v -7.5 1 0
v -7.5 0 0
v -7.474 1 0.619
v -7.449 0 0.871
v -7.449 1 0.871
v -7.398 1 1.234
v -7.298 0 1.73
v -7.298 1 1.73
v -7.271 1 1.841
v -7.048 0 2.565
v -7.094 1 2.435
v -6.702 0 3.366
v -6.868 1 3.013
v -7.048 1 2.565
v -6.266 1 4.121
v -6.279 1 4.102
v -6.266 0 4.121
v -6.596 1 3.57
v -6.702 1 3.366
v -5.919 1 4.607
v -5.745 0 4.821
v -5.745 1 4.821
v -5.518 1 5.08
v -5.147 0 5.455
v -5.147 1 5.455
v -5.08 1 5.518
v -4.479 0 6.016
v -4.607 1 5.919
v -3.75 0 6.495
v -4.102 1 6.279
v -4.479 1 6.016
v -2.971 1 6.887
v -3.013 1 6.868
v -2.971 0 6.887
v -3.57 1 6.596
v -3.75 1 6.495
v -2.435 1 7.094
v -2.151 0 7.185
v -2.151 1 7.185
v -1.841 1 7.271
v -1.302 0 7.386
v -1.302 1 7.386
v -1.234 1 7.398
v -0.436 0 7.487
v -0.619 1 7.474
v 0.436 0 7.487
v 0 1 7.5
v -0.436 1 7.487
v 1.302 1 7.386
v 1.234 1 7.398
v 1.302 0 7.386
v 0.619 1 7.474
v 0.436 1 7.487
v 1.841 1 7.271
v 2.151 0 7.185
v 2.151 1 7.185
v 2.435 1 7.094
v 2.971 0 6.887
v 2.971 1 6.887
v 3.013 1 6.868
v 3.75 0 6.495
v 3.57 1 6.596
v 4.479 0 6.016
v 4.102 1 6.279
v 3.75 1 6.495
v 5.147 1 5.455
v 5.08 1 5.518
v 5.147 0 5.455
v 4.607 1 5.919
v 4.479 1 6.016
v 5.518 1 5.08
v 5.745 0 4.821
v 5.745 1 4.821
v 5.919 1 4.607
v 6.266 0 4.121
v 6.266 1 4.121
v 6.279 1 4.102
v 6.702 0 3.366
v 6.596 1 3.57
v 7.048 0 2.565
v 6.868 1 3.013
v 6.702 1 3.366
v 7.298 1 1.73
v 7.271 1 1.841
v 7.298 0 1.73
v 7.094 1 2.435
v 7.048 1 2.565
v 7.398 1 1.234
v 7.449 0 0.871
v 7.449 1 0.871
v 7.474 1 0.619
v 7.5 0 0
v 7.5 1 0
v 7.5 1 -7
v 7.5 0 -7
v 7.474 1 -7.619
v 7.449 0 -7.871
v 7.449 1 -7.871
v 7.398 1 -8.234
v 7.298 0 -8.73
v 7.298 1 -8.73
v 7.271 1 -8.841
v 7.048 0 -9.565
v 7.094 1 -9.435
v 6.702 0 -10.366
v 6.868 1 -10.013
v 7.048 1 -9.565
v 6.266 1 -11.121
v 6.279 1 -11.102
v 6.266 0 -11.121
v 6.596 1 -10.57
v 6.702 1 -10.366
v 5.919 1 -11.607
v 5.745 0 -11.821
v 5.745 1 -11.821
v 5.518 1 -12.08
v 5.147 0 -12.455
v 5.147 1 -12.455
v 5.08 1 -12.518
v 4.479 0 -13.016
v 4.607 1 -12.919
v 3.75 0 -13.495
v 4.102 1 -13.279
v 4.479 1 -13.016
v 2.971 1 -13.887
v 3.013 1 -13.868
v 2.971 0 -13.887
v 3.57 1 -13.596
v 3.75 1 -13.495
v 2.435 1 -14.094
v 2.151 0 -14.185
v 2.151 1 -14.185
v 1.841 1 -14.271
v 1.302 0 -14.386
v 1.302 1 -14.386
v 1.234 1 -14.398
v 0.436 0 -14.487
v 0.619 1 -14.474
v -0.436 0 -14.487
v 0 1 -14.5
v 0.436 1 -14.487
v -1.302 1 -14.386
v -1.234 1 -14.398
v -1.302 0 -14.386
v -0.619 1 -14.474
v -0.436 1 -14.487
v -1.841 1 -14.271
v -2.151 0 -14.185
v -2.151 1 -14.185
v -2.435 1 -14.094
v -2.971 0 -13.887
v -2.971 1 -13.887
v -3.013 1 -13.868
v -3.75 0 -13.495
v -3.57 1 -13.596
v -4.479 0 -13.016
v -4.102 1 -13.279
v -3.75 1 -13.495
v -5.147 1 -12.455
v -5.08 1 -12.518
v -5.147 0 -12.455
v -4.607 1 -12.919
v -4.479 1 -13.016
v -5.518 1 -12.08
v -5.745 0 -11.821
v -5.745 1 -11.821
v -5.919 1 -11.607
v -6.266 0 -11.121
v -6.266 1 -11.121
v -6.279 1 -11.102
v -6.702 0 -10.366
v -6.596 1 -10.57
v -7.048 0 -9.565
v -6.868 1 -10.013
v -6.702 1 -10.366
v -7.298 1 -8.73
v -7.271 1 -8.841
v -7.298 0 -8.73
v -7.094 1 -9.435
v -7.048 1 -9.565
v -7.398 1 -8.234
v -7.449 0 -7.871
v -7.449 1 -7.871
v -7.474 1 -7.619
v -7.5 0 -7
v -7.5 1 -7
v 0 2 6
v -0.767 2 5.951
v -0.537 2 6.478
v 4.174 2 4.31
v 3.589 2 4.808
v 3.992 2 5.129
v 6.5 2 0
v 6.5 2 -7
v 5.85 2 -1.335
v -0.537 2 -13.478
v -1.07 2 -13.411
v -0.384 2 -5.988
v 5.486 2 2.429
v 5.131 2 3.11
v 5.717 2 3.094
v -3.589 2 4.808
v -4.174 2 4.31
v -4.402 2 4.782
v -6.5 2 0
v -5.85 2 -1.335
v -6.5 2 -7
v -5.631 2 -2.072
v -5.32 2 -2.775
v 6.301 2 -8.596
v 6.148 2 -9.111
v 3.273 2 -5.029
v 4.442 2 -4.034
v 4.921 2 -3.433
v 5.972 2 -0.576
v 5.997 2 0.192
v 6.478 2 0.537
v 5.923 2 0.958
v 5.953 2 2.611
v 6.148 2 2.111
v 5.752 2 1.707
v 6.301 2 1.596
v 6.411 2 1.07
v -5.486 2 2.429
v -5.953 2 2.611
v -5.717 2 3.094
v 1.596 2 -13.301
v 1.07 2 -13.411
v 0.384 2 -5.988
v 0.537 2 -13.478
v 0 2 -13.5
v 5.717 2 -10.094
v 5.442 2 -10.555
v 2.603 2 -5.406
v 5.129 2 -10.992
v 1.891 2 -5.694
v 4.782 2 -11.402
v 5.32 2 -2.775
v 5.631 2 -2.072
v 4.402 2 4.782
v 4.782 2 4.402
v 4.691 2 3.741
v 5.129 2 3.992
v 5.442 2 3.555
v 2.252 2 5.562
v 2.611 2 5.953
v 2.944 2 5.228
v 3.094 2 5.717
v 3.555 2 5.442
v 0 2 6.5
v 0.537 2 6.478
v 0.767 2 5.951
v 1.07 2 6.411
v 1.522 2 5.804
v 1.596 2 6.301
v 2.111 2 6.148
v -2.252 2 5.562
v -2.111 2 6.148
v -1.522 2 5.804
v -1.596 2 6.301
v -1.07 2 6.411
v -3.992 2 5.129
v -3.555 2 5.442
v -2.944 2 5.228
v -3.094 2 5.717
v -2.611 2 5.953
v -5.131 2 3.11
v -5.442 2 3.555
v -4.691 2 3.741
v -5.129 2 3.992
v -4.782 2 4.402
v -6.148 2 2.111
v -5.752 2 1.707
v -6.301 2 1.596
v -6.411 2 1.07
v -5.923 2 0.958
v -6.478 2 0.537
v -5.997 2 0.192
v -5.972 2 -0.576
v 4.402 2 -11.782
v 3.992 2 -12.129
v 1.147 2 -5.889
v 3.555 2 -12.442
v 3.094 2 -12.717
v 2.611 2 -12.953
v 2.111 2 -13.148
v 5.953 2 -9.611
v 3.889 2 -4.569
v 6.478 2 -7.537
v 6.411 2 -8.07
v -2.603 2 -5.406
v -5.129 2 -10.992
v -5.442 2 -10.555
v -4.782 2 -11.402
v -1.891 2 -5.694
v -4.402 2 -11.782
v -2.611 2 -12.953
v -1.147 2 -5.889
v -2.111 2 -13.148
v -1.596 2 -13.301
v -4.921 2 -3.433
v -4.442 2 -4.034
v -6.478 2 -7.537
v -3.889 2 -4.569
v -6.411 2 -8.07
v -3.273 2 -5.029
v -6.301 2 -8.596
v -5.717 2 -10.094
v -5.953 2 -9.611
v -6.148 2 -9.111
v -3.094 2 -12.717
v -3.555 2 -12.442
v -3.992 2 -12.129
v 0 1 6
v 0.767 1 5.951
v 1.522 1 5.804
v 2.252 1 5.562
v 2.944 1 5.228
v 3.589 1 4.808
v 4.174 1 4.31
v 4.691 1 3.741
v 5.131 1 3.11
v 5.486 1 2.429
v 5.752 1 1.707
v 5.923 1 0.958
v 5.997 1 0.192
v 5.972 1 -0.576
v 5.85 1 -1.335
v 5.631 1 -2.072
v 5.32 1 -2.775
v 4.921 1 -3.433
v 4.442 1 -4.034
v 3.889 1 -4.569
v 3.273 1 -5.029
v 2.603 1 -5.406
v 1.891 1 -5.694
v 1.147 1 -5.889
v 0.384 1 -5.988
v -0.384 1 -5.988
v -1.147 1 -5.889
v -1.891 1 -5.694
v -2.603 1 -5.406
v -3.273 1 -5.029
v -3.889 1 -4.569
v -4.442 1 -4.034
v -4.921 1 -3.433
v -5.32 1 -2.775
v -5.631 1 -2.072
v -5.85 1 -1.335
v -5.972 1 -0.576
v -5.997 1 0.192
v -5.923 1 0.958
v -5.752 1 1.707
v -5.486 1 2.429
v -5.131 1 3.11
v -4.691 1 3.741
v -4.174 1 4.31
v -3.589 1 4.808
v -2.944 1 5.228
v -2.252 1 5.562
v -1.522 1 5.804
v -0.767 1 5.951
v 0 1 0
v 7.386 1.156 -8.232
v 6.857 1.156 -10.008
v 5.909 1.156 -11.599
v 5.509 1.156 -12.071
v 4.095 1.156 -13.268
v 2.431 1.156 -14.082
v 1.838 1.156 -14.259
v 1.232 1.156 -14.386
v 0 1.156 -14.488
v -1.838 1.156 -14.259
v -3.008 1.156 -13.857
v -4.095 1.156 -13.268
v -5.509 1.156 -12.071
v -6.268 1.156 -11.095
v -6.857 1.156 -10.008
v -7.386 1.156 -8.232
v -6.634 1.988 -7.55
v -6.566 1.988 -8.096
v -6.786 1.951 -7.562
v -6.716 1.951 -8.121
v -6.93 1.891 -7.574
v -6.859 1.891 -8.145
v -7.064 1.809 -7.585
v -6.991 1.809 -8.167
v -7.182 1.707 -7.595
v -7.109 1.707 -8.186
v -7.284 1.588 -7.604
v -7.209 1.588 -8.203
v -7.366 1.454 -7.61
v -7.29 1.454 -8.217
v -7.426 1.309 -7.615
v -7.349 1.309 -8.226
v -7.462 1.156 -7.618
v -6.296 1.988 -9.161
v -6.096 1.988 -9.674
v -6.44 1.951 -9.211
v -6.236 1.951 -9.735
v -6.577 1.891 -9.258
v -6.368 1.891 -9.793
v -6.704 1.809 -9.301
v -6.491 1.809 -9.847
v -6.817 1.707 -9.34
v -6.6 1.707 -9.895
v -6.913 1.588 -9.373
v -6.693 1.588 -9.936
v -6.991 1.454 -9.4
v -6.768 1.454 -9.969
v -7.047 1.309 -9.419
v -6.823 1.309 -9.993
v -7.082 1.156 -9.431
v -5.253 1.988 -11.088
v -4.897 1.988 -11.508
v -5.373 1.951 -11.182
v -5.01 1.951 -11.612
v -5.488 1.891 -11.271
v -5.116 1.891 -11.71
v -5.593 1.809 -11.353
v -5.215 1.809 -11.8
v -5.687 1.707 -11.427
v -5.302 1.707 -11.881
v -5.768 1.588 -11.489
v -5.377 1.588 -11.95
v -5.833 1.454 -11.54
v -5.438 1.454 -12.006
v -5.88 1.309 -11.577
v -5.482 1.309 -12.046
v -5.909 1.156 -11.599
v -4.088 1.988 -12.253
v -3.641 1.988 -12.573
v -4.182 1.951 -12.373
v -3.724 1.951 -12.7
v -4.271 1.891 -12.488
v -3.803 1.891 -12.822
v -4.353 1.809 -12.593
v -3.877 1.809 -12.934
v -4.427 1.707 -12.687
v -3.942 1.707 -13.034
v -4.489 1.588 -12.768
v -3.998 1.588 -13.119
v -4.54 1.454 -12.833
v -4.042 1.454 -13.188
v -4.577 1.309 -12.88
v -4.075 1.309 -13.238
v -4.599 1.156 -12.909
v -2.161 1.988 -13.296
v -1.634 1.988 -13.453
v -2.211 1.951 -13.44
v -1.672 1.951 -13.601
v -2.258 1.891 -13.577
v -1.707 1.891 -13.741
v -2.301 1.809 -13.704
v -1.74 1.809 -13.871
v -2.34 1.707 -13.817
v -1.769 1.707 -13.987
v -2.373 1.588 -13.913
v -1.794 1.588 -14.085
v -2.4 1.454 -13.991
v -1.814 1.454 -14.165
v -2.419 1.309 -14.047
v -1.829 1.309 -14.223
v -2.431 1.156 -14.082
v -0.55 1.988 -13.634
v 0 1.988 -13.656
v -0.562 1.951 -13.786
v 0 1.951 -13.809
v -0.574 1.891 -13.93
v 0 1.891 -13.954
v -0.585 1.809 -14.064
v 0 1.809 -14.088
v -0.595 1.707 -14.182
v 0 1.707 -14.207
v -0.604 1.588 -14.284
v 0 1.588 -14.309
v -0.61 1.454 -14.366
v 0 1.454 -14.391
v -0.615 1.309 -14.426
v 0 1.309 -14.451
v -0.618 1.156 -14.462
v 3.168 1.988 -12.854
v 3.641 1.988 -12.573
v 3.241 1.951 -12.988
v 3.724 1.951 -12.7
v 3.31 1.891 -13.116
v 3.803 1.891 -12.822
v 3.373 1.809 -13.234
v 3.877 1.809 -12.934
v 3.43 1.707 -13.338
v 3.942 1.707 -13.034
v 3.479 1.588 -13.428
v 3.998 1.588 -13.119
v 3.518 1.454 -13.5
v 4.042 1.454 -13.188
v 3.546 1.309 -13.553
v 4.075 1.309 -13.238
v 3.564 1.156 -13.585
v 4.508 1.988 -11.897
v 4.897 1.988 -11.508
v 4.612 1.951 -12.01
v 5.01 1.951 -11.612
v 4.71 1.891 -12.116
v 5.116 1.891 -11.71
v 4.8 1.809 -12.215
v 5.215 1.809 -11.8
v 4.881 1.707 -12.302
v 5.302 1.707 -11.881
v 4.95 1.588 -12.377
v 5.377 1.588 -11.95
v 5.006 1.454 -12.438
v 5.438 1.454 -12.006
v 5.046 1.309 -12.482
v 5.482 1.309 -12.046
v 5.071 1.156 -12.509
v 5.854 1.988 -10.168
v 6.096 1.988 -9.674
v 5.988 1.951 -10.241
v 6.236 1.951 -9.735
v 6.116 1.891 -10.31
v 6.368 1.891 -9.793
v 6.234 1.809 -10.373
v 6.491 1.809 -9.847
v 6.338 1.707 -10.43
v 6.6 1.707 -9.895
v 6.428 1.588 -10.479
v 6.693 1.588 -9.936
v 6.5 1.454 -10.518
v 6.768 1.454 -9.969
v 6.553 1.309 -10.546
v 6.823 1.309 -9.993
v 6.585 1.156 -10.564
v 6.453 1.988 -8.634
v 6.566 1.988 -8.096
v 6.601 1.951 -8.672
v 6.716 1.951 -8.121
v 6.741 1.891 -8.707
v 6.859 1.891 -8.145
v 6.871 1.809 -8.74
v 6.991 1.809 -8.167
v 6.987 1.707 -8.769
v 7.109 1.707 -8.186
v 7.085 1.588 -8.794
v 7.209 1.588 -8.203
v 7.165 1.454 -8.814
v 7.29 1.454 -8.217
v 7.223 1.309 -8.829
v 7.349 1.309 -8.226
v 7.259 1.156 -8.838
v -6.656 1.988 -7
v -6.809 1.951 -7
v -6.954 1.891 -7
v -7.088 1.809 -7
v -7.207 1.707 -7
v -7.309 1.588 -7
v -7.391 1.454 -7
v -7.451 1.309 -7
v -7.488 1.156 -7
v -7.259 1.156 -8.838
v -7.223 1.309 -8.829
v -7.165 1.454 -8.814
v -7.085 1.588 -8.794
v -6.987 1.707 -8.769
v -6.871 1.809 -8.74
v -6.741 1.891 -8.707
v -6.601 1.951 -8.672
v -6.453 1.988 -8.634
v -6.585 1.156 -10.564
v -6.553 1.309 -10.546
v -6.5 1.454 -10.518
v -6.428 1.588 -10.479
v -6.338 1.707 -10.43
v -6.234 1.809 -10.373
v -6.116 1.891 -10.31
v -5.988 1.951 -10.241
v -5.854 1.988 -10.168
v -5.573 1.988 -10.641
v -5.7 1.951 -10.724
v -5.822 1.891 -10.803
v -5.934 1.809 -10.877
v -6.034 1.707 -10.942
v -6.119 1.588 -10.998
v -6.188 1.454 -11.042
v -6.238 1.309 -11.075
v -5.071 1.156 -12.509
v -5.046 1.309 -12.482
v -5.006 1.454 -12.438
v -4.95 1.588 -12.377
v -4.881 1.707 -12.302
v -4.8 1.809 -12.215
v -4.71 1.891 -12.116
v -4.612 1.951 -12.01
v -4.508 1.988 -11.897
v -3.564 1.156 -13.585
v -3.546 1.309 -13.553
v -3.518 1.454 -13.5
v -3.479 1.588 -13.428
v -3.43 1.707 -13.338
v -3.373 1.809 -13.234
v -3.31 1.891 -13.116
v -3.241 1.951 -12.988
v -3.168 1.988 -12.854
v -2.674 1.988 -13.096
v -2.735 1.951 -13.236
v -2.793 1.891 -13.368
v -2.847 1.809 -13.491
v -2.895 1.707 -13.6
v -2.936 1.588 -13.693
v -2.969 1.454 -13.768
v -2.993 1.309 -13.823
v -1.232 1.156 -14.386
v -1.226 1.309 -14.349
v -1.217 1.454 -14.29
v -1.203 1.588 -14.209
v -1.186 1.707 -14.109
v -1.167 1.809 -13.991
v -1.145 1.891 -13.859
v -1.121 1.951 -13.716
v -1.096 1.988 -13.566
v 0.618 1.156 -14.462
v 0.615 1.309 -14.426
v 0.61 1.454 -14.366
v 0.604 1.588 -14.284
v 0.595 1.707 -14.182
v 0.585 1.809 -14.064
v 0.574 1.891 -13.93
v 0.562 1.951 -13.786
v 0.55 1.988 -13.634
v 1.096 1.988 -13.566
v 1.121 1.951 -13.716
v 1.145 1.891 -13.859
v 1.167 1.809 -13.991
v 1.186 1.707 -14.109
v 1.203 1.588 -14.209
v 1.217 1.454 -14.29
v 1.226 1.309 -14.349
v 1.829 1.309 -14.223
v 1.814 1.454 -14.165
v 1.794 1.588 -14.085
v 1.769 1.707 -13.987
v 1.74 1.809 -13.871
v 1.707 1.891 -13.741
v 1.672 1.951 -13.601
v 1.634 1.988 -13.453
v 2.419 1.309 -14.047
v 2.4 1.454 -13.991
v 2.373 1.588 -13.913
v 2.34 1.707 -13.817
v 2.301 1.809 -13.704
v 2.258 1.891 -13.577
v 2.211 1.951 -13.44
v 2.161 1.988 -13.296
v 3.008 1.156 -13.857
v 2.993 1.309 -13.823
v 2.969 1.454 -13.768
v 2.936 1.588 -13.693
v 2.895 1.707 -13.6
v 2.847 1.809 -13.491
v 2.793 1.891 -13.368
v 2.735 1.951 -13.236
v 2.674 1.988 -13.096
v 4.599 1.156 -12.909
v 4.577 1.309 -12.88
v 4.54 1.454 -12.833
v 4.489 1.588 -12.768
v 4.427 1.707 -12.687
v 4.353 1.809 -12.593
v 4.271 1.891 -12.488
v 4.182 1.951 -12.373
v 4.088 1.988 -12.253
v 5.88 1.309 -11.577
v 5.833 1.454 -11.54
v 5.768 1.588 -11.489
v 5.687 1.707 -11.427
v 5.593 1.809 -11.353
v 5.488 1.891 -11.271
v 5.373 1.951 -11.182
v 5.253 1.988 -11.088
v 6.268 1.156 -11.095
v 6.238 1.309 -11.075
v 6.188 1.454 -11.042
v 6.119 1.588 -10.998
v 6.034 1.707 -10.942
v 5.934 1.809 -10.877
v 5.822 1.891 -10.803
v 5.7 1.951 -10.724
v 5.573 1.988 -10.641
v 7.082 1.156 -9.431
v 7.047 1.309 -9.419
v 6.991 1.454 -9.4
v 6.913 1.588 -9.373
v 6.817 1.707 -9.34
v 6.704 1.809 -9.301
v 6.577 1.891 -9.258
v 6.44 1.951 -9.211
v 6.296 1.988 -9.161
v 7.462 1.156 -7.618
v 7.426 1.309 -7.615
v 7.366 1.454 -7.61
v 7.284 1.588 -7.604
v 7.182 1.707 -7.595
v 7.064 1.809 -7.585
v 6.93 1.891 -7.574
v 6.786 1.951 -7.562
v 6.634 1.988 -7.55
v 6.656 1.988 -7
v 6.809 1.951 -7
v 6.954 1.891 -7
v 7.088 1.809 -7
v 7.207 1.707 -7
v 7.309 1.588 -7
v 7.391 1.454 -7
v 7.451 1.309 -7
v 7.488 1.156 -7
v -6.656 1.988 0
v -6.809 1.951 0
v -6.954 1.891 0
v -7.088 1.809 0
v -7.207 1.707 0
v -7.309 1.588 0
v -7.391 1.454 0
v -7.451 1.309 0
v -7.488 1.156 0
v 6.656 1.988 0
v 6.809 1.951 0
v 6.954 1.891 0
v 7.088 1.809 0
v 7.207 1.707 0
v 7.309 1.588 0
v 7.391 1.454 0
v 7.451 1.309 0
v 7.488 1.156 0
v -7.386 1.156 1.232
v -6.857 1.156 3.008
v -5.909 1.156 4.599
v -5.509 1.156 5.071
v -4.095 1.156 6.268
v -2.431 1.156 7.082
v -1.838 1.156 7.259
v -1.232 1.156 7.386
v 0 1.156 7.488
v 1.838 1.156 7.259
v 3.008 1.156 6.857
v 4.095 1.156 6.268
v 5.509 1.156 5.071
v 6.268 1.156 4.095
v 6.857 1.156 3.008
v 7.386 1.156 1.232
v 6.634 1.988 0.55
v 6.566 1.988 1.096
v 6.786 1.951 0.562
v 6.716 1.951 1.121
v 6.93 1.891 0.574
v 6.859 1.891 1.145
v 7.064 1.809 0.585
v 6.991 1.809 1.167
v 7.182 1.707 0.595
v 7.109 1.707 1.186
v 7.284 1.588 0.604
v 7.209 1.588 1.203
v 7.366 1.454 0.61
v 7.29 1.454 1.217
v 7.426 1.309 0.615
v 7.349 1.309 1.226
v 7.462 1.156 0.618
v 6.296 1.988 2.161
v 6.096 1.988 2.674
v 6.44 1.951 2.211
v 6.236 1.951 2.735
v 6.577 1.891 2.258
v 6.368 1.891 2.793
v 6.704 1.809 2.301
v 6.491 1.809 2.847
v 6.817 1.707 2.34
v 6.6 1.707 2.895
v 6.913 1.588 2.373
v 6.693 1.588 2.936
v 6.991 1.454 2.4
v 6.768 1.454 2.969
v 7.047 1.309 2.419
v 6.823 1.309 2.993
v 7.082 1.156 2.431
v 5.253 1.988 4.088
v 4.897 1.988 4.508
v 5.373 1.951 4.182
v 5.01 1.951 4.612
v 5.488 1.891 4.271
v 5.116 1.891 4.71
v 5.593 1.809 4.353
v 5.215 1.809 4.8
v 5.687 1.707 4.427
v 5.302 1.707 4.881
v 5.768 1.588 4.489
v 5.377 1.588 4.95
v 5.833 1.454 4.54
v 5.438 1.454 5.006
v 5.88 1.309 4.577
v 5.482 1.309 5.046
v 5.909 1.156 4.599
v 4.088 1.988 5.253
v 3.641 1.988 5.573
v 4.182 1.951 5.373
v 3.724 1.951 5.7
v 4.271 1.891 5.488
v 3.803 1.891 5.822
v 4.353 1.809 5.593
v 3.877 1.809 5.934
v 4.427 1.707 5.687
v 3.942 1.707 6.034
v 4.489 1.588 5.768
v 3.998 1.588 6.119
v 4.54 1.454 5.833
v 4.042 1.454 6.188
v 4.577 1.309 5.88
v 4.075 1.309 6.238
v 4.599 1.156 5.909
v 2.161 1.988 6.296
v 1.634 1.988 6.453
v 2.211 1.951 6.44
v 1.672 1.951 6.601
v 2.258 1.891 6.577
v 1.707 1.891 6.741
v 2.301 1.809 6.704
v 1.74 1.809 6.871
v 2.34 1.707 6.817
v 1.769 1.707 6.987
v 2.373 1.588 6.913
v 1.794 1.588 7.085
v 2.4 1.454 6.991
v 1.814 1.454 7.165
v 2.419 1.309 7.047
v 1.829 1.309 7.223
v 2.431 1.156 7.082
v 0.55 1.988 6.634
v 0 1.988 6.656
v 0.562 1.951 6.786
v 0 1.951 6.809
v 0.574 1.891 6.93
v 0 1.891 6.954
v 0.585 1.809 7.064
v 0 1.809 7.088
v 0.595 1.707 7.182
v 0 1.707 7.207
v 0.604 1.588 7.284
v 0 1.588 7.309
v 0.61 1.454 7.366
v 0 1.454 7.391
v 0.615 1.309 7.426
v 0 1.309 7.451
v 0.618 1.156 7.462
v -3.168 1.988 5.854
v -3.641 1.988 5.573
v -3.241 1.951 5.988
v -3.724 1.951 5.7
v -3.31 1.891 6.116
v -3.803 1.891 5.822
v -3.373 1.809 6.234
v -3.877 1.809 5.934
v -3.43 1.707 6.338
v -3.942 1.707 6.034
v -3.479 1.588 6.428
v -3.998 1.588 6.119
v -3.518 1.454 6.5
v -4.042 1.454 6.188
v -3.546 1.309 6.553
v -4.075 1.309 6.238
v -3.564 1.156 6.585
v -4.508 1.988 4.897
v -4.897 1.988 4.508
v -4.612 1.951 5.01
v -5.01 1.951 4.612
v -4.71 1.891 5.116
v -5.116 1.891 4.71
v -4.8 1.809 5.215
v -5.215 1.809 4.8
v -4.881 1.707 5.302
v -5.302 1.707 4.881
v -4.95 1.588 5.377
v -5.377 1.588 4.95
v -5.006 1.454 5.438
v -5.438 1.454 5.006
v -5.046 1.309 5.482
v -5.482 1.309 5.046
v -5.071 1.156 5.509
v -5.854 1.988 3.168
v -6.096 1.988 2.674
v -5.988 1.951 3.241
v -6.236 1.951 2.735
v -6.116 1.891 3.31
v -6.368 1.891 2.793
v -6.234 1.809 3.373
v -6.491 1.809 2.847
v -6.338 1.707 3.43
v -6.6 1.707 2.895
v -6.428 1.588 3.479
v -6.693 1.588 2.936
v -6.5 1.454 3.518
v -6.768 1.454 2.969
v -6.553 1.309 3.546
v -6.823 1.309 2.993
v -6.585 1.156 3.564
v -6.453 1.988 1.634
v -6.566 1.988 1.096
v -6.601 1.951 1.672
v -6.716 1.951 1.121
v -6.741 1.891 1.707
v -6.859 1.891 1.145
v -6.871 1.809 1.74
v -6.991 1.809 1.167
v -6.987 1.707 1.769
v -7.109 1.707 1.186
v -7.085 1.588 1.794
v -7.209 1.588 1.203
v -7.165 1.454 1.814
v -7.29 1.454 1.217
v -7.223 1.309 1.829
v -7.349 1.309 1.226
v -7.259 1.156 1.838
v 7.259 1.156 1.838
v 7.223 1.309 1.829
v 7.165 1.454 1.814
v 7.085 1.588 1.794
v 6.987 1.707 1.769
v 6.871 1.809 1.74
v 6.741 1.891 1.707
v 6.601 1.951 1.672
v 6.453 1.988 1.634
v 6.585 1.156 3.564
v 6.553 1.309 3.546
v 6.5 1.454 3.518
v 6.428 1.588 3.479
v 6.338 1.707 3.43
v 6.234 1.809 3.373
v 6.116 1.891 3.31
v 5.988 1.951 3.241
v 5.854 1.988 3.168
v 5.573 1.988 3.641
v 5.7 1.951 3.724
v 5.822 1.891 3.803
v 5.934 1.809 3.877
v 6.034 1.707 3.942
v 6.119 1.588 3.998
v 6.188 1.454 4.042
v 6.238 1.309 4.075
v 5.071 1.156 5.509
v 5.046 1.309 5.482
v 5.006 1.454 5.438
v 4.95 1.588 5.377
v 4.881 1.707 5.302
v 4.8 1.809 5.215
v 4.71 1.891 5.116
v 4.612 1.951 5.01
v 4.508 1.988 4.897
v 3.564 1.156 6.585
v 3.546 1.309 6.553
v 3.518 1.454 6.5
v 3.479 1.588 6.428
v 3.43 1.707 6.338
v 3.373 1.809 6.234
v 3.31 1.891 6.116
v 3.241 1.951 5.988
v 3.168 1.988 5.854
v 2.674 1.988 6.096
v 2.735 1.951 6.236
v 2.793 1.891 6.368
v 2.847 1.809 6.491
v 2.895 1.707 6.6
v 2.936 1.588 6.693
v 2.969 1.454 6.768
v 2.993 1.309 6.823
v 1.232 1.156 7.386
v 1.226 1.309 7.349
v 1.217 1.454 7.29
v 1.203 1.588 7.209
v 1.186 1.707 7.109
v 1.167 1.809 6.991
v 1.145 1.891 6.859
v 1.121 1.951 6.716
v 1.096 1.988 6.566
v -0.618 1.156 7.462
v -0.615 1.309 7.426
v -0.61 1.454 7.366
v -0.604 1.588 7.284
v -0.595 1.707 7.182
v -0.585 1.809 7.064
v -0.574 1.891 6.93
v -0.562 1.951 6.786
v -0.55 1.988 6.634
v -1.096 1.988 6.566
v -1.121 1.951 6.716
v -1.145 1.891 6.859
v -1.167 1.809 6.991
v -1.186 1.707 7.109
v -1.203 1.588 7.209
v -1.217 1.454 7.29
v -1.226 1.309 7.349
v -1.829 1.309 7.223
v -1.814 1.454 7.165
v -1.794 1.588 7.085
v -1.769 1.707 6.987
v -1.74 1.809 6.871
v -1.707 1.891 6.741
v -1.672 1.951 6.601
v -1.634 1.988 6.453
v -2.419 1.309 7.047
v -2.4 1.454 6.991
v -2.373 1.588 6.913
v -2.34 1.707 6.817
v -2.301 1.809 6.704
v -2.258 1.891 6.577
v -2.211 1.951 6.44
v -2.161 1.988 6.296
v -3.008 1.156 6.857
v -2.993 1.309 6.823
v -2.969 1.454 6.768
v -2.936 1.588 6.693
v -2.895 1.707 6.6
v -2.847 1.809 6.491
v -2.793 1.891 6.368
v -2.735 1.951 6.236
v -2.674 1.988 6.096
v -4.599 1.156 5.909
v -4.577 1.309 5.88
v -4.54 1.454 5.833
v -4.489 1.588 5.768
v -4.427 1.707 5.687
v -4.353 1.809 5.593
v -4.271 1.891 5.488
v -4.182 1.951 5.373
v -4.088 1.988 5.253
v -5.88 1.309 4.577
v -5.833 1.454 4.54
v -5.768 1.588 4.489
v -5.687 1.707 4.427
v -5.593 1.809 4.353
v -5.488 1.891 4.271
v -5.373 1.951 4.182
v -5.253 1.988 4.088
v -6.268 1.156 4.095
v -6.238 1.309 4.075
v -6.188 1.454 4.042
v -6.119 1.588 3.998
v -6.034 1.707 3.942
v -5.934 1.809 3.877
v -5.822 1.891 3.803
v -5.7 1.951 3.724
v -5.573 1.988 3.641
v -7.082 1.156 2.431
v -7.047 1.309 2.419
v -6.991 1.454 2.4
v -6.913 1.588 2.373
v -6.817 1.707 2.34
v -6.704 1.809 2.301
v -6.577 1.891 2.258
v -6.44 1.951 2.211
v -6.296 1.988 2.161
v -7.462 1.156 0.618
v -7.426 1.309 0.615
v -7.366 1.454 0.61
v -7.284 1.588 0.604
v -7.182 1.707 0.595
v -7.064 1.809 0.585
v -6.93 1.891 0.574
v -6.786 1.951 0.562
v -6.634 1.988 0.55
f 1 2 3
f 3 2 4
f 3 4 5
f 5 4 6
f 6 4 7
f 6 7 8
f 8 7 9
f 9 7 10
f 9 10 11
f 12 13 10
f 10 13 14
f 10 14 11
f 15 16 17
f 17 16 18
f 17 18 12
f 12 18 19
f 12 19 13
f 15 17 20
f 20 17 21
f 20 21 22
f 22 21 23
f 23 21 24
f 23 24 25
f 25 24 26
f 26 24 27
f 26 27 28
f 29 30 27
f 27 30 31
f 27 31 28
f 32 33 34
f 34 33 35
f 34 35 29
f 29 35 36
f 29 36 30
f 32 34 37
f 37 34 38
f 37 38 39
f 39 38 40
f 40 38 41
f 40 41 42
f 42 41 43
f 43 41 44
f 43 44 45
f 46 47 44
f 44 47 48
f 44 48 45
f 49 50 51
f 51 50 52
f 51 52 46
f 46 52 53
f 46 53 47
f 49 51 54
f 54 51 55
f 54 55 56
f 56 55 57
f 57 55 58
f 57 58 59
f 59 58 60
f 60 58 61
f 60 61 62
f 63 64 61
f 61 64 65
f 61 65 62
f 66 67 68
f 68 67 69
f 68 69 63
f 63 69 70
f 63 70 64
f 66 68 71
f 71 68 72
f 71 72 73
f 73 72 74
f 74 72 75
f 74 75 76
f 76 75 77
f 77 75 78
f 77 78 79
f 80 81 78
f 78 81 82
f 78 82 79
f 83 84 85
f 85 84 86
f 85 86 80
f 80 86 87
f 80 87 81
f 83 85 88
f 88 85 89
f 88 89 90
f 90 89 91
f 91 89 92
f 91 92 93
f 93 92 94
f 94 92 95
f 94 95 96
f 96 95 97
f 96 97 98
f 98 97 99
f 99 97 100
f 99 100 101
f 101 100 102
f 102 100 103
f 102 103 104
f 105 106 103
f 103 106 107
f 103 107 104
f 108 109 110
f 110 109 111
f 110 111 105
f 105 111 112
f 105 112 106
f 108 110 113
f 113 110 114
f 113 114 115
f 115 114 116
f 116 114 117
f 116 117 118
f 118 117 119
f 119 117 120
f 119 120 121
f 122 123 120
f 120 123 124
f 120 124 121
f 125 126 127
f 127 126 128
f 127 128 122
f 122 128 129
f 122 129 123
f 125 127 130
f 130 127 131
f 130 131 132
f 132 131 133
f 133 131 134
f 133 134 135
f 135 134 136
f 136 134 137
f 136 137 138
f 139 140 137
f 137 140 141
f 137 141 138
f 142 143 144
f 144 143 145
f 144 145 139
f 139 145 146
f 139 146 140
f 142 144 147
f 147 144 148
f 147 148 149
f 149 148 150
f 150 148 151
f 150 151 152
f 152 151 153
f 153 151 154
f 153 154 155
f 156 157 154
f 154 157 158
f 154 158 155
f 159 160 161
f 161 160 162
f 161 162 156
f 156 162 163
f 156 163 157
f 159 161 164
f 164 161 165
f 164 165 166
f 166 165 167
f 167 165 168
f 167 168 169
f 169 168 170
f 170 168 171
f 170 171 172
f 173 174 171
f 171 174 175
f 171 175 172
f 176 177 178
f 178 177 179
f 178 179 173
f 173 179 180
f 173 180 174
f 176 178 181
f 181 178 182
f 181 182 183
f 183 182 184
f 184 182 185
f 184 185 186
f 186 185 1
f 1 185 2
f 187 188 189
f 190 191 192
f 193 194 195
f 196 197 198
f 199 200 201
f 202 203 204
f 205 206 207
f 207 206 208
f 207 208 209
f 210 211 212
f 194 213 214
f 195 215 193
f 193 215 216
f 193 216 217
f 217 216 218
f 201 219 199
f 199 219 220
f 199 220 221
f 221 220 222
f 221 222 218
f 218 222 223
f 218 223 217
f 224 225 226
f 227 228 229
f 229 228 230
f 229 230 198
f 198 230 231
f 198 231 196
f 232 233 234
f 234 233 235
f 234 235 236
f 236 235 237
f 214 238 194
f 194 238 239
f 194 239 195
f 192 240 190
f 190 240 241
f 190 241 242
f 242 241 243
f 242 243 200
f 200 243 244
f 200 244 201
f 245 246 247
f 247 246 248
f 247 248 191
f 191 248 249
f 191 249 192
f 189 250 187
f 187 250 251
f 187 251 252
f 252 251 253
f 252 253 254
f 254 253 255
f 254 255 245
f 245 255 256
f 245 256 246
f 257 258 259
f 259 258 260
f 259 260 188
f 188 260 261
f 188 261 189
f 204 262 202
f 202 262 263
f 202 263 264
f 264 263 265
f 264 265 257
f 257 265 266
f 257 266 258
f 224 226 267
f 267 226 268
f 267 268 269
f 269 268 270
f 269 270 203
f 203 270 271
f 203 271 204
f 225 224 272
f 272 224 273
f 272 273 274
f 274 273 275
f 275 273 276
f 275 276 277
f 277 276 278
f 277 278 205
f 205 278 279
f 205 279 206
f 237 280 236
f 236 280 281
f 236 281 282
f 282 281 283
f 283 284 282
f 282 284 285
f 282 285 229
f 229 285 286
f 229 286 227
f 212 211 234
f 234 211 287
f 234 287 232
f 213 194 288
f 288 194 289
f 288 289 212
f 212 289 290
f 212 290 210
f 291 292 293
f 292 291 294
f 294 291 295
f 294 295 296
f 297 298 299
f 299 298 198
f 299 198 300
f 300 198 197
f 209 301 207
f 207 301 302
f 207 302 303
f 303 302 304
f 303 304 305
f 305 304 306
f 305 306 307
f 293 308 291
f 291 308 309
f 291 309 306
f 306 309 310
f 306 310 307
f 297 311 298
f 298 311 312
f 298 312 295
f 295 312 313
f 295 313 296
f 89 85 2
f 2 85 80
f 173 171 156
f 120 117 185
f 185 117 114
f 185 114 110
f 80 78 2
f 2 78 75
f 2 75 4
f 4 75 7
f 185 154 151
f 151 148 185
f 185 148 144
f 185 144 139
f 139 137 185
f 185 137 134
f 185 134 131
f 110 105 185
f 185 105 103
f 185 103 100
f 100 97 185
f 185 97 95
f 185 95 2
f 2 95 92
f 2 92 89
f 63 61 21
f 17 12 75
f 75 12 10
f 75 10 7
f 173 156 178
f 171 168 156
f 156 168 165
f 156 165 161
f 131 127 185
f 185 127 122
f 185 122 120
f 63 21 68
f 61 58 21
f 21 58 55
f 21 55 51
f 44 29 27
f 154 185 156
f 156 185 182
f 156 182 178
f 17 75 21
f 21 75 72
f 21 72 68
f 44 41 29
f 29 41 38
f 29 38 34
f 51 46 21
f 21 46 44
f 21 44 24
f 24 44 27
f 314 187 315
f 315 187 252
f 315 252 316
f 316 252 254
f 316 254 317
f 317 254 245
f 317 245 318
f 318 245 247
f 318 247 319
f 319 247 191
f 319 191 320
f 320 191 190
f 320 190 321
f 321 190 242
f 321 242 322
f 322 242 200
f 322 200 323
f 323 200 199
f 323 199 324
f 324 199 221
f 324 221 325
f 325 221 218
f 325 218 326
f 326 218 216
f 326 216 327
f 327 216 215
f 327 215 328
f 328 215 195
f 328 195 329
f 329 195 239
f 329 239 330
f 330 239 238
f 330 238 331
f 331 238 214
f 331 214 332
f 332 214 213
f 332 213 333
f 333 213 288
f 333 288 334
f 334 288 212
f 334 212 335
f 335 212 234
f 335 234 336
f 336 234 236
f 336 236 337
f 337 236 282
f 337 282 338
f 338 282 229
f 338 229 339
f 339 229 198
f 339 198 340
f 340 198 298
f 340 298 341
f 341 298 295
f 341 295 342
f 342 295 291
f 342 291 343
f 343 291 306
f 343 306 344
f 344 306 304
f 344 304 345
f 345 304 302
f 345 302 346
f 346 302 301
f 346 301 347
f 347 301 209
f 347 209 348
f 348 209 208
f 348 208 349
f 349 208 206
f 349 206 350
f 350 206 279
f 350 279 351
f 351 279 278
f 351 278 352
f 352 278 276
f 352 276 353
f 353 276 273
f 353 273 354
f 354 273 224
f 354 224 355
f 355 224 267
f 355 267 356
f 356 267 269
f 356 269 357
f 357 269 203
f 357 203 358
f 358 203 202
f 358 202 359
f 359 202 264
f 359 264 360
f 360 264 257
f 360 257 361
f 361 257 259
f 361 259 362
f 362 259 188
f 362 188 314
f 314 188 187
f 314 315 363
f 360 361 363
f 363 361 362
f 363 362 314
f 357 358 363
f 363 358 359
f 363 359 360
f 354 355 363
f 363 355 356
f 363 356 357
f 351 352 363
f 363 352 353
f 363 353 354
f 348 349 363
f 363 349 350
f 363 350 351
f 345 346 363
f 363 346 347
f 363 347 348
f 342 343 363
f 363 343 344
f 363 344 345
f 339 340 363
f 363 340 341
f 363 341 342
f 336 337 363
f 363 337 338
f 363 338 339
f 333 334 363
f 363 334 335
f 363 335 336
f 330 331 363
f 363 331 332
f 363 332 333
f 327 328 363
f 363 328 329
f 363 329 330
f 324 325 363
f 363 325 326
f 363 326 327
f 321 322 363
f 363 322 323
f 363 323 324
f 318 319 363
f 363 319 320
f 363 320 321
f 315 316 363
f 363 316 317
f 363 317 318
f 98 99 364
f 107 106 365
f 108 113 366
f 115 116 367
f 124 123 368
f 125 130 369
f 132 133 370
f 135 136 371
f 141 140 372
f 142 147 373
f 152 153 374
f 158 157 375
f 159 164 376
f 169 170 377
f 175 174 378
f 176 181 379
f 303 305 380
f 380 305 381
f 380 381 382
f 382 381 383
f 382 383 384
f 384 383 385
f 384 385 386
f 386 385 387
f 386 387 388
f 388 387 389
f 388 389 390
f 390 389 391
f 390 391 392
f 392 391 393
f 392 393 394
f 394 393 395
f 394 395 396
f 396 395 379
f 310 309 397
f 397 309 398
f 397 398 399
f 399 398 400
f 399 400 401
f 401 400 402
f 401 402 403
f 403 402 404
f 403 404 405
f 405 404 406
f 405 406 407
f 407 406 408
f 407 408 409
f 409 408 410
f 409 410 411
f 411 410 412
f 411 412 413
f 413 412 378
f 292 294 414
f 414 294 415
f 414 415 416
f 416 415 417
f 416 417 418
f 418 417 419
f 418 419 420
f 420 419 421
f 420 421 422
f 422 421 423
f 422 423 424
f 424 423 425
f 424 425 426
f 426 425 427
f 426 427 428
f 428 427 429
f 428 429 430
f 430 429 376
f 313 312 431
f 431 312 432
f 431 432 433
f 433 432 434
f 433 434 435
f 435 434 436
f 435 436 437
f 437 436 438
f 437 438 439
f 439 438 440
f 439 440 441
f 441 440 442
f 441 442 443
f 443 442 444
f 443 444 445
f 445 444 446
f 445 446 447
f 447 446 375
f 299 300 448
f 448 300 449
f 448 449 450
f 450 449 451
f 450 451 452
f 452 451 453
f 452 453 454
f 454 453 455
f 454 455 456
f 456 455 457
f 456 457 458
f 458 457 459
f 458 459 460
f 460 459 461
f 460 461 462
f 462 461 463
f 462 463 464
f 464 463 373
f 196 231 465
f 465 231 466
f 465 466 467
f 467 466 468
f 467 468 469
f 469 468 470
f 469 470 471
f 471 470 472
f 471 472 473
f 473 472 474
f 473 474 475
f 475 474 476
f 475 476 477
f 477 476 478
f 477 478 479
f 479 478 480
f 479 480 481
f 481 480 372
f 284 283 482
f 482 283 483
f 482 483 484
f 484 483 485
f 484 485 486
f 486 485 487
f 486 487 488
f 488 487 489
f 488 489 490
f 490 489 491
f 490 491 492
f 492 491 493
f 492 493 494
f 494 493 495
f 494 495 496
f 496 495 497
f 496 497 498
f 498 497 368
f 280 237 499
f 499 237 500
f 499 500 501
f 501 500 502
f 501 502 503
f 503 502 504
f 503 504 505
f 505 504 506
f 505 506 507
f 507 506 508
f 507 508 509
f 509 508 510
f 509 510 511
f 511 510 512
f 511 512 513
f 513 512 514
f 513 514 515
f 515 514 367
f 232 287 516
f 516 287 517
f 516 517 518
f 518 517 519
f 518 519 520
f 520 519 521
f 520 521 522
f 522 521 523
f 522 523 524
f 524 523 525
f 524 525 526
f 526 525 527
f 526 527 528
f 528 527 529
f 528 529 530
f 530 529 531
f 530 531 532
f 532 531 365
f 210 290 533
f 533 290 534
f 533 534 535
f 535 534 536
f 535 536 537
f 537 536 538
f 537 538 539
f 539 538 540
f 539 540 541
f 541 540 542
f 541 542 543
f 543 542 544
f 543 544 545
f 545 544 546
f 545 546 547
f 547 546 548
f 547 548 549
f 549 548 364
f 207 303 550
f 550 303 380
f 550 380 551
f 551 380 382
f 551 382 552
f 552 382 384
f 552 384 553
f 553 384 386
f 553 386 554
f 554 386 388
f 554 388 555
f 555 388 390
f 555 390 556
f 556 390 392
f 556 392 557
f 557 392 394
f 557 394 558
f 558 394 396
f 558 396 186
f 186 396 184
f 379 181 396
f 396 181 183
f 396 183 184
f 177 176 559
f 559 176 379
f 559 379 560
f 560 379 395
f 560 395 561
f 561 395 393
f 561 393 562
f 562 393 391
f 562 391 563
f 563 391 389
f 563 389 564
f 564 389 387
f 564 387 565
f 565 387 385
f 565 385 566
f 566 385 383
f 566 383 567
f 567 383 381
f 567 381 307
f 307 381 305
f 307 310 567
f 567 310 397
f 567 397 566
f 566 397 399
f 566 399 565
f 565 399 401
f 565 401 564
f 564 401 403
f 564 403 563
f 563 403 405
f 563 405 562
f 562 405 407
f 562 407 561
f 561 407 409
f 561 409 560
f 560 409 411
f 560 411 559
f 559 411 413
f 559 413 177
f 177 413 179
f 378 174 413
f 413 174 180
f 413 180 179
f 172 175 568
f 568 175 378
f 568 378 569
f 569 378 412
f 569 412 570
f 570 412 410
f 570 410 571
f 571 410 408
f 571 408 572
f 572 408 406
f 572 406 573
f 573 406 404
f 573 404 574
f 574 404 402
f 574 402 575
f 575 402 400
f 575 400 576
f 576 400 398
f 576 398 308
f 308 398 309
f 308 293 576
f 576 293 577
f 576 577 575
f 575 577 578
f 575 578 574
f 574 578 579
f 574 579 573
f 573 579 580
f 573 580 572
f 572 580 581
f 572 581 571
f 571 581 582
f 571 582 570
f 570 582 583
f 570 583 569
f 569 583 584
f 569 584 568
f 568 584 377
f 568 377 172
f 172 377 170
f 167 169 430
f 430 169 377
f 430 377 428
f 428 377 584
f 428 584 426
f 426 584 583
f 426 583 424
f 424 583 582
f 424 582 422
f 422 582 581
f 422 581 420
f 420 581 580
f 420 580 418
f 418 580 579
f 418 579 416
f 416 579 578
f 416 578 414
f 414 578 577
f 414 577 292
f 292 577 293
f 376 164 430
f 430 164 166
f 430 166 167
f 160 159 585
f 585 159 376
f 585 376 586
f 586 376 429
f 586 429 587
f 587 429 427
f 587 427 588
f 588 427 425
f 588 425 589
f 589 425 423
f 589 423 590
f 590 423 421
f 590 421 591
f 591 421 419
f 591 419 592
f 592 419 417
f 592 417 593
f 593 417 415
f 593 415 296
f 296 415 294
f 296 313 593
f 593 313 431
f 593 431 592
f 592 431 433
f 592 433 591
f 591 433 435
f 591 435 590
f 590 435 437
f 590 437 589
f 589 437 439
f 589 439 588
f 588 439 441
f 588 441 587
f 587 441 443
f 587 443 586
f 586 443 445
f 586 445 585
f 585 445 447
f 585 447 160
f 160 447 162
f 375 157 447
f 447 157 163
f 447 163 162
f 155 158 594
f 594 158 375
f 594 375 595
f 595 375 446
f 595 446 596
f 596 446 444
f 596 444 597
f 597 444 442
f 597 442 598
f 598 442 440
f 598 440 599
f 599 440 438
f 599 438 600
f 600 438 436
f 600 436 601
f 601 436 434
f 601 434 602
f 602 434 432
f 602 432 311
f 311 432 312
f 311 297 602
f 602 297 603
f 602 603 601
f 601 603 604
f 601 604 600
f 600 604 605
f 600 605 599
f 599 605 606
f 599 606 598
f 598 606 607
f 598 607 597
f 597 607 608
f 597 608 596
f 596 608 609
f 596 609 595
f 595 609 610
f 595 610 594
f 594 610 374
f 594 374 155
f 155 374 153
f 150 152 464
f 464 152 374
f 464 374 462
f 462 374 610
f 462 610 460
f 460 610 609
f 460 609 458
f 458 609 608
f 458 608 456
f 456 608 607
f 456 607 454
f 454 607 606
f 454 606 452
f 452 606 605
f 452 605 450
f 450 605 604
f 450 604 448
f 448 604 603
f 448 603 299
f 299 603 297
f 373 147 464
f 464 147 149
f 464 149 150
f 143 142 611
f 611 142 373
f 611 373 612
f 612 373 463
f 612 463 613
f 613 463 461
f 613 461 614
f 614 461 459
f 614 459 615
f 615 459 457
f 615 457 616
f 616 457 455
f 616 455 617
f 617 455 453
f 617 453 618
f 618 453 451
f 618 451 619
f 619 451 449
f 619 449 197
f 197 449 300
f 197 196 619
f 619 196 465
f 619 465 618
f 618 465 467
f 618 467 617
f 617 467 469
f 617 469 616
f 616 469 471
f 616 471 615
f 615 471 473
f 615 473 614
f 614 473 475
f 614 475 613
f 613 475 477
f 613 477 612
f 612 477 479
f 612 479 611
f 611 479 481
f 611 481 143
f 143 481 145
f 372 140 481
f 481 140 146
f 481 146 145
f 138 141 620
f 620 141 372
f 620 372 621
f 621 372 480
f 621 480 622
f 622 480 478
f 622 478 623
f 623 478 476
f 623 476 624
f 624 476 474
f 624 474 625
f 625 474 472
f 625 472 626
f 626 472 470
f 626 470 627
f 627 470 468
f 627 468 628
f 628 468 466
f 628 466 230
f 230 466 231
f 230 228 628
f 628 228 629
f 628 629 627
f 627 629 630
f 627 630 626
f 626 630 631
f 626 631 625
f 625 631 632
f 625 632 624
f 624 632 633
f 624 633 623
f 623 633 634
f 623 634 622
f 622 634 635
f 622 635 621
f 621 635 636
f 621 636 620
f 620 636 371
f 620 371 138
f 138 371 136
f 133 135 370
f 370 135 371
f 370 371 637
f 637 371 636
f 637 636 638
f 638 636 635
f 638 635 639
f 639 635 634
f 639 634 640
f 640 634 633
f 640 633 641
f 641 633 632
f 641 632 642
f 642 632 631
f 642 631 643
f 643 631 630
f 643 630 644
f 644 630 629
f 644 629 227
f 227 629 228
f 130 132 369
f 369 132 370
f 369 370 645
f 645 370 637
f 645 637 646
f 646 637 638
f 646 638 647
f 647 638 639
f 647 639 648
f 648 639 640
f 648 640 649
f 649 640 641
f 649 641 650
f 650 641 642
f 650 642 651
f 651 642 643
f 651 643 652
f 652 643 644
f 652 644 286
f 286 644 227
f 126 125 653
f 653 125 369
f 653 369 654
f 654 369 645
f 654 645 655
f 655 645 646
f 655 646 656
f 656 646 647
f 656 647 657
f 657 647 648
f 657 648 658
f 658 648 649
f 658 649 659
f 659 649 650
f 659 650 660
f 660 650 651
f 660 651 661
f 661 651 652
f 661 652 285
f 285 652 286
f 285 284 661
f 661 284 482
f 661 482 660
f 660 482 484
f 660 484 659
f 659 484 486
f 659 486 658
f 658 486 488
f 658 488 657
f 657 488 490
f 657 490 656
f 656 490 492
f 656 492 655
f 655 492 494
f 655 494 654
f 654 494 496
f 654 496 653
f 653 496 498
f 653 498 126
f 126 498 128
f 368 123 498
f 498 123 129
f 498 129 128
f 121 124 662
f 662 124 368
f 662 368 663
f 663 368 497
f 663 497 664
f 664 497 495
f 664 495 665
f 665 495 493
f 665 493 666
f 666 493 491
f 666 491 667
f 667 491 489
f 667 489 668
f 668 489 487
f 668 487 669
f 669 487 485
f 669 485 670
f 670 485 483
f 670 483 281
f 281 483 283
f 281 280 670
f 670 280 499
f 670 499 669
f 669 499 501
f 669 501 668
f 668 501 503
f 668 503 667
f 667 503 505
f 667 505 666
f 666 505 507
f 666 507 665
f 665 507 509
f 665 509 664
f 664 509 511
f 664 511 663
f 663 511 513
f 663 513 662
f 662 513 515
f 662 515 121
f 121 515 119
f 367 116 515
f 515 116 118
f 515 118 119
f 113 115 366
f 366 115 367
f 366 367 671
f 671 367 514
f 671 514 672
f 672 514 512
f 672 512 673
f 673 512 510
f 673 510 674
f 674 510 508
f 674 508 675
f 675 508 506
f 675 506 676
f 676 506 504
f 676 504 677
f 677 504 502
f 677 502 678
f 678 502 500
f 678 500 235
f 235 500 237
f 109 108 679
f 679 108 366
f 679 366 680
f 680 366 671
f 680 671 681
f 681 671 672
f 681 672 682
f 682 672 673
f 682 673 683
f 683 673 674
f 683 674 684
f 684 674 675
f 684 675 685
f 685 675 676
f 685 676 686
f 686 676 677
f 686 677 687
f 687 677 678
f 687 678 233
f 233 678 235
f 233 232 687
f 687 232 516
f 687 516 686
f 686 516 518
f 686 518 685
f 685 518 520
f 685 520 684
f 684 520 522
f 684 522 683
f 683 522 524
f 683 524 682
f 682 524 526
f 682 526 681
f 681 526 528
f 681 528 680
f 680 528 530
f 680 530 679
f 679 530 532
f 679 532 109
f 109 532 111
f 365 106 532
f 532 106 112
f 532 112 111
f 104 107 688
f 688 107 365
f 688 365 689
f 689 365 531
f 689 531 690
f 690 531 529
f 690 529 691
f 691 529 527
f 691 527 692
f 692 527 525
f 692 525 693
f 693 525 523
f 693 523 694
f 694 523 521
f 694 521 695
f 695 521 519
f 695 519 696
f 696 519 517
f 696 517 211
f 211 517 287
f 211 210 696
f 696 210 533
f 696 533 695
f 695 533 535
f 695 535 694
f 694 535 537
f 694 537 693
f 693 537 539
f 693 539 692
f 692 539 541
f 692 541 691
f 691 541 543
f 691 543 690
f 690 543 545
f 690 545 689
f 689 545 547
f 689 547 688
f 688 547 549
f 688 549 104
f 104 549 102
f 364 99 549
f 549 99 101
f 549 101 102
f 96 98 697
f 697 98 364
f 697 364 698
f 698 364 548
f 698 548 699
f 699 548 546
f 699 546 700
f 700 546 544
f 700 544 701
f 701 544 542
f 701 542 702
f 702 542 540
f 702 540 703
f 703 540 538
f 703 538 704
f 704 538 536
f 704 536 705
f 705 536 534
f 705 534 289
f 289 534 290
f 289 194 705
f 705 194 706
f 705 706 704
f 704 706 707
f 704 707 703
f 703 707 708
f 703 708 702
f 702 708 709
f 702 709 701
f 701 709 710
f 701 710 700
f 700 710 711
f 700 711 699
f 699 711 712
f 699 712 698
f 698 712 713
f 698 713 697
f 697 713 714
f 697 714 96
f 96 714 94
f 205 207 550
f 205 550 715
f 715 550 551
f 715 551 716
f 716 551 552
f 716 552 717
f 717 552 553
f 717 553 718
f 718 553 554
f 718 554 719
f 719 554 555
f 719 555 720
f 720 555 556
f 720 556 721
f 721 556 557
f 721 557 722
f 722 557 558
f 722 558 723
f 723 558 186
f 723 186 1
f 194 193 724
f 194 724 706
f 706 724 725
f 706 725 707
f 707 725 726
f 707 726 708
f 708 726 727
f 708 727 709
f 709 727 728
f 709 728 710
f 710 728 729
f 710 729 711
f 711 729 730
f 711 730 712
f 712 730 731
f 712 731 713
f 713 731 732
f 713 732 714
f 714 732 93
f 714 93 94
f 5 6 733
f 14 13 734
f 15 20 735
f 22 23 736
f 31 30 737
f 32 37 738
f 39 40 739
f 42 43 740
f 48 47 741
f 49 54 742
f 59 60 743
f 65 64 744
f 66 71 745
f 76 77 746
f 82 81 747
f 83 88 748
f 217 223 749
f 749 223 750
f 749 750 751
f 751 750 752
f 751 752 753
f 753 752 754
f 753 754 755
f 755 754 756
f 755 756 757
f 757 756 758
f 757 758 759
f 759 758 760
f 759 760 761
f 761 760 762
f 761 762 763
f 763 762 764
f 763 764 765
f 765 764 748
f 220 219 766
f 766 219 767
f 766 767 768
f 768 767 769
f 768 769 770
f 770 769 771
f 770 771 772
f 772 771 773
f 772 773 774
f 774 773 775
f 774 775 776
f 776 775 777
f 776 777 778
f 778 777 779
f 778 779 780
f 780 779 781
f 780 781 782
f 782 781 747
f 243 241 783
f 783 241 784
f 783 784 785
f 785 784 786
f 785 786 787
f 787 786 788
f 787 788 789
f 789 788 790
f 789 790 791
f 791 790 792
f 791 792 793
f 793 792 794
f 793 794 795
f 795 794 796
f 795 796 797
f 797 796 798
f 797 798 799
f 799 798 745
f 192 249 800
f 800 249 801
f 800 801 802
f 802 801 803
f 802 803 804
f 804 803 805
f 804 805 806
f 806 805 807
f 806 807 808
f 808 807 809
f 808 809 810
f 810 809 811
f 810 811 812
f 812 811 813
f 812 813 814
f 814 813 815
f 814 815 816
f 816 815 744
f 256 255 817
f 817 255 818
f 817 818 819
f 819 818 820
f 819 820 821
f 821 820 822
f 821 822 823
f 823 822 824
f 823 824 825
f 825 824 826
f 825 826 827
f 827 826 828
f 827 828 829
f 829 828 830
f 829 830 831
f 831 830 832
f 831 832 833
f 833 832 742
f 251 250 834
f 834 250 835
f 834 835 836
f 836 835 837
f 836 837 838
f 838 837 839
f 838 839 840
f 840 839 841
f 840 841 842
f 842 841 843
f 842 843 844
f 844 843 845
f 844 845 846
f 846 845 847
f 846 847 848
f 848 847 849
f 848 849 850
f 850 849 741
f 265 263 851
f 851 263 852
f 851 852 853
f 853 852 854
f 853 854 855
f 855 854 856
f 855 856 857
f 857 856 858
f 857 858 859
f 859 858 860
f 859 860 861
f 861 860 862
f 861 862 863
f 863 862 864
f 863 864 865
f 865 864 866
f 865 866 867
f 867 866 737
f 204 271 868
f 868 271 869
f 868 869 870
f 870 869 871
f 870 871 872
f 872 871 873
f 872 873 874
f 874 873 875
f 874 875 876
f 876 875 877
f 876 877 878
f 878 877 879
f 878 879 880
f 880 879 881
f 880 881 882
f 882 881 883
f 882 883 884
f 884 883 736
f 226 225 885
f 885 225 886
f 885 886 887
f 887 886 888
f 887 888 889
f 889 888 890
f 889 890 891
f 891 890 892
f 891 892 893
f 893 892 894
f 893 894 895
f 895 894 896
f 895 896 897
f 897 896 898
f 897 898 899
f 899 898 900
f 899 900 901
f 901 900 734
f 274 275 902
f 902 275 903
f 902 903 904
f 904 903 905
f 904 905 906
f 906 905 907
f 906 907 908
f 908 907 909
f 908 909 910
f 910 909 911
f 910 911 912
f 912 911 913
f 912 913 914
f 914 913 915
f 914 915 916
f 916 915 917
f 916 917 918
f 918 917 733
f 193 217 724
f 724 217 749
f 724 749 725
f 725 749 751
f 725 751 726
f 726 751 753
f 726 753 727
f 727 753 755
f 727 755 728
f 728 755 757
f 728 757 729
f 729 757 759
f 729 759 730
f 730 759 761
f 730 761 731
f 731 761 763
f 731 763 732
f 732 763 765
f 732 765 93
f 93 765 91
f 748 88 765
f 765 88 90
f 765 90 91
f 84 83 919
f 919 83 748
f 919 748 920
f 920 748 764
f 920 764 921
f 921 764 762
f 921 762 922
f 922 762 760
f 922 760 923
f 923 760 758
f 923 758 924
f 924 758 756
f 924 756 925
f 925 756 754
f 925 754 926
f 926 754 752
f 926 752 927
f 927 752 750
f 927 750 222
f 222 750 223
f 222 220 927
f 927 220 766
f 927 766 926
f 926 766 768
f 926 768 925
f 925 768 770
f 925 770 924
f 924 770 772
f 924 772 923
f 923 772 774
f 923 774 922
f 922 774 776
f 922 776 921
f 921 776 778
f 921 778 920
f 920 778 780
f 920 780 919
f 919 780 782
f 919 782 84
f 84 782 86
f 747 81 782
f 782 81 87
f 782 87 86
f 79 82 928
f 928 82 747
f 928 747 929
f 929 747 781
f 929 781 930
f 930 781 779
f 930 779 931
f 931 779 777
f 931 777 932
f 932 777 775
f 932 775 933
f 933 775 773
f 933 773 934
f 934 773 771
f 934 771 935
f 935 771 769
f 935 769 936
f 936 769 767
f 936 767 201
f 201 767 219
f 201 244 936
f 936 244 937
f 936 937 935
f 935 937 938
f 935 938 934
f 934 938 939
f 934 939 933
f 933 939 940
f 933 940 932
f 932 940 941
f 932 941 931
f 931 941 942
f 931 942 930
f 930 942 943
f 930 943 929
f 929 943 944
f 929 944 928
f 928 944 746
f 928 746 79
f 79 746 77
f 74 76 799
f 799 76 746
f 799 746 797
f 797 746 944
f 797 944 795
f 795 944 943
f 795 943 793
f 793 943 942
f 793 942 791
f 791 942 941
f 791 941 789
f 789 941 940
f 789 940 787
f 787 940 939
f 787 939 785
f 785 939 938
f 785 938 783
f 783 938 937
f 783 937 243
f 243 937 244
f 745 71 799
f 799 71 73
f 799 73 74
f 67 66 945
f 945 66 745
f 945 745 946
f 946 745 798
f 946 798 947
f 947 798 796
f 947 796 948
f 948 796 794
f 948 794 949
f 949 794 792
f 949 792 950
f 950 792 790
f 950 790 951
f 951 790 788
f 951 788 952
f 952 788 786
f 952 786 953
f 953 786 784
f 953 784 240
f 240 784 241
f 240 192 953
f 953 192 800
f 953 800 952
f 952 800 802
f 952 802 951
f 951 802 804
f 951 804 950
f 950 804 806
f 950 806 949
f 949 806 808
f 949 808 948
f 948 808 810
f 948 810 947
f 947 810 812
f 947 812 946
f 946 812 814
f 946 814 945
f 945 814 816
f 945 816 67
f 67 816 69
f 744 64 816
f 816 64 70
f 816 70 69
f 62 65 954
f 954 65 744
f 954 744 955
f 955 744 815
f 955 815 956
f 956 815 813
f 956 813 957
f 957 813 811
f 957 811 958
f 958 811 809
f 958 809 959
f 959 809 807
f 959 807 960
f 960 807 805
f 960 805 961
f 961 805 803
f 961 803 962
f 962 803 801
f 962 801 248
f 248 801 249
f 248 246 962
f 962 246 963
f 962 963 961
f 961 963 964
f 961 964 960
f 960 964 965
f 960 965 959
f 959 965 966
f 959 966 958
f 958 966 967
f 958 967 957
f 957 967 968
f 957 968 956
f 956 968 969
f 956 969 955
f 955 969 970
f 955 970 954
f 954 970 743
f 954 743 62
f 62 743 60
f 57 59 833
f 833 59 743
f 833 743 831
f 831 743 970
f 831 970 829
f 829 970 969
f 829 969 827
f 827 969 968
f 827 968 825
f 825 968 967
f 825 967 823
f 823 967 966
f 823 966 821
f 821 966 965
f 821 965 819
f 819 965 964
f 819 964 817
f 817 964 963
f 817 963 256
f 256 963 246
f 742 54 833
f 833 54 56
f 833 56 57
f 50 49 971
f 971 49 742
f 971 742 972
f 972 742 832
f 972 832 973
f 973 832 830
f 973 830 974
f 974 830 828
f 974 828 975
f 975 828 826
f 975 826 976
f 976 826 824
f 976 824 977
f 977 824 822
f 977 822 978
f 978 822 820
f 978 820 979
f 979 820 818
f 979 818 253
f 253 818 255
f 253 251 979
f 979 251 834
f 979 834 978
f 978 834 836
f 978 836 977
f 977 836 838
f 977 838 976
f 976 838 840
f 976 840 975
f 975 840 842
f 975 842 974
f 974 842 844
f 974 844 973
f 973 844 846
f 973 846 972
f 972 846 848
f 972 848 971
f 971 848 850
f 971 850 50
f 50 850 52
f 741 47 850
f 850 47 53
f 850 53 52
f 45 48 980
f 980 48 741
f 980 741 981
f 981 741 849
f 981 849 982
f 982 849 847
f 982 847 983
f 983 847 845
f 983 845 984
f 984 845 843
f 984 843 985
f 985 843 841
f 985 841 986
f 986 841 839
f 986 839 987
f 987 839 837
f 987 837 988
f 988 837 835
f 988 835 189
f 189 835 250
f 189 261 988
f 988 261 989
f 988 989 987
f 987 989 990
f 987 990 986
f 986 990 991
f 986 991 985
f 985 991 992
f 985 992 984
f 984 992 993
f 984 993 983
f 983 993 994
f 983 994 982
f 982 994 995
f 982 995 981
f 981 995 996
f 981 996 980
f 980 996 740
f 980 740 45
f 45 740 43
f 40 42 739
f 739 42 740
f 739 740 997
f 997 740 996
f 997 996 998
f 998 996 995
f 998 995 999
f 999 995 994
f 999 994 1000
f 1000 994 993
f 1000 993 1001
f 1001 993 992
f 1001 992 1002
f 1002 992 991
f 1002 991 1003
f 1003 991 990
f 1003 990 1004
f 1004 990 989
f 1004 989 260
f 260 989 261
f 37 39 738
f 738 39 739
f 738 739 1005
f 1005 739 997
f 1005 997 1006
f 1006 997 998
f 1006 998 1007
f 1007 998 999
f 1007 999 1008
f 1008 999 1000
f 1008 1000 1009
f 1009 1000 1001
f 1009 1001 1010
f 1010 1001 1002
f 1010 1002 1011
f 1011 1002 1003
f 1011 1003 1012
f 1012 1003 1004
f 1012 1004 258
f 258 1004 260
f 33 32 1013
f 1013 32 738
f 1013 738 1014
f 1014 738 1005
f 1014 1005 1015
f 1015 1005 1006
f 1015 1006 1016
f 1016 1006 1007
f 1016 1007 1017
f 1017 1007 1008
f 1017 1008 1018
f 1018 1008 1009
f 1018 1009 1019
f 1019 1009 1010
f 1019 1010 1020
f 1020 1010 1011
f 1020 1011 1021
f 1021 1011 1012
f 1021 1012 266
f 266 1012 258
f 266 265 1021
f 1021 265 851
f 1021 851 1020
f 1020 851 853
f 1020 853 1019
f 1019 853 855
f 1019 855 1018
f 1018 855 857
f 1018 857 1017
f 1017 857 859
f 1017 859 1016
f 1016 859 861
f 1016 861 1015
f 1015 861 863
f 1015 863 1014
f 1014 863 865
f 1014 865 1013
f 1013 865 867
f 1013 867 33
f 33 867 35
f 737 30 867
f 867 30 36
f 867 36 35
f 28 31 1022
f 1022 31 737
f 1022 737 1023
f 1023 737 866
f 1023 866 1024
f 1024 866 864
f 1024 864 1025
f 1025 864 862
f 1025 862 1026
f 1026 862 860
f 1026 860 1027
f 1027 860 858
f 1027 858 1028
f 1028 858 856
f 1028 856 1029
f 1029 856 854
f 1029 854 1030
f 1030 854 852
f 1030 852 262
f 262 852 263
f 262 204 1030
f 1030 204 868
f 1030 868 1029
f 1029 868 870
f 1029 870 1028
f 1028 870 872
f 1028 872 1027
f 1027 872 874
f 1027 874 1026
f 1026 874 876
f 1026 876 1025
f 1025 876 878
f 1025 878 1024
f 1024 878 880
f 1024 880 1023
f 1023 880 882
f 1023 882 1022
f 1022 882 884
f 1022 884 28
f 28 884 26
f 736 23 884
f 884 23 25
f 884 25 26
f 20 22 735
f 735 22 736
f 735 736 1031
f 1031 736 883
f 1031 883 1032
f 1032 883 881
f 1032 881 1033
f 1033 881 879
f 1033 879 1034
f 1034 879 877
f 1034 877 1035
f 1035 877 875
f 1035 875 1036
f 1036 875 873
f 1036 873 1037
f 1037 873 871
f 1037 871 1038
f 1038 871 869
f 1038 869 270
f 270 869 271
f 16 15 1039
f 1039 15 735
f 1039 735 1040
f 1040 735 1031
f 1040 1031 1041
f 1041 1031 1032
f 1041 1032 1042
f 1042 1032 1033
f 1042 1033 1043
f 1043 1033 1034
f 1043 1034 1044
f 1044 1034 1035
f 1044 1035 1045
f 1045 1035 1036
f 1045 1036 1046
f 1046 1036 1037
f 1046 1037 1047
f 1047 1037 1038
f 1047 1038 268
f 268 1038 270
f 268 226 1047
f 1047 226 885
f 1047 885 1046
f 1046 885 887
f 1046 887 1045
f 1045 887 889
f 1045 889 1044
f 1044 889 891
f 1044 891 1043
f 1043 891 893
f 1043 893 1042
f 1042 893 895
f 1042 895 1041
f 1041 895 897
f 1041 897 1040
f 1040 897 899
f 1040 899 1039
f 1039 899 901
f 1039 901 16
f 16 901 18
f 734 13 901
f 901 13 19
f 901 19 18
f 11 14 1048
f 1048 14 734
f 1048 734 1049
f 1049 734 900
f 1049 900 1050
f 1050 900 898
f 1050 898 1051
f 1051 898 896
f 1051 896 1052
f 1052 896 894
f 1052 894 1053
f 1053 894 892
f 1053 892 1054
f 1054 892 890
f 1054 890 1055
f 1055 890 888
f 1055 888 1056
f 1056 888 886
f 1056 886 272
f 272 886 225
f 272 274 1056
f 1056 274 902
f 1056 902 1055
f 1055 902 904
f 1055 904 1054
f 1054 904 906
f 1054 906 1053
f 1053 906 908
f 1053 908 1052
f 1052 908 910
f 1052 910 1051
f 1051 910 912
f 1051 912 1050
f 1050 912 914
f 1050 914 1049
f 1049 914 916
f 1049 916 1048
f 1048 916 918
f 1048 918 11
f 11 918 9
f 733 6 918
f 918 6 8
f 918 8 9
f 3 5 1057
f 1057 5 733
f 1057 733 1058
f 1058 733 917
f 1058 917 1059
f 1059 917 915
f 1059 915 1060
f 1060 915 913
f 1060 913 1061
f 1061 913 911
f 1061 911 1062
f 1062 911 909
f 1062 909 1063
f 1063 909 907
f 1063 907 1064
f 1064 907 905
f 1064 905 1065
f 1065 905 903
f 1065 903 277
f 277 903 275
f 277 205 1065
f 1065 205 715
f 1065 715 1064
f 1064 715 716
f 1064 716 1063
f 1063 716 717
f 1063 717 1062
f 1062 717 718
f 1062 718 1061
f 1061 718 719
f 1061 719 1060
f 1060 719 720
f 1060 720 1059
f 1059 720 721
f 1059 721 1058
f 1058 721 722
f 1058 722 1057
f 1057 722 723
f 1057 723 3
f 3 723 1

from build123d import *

# Parameters (mm, degrees)
BOSS_EXTRUDE2_DEPTH = 2
SKETCH3_R           = 6
CUT_EXTRUDE1_DEPTH  = 1
FILLET2_R           = 1


with BuildPart() as part:
    # Sketch2 → Boss-Extrude2 (new body)
    with BuildSketch(Plane(origin=(0, 0, 0), x_dir=(1, 0, 0), z_dir=(0, 1, 0))):
        with BuildLine():
            Line((-7.5, 0), (-7.5, 7))
            ThreePointArc((-7.5, 7), (0, 14.5), (7.5, 7))
            Line((7.5, 7), (7.5, 0))
            ThreePointArc((7.5, 0), (0, -7.5), (-7.5, 0))
        make_face()
    extrude(amount=BOSS_EXTRUDE2_DEPTH)

    # Sketch3 → Cut-Extrude1 (cut)
    with BuildSketch(Plane(origin=(0, 2, 0), x_dir=(1, 0, 0), z_dir=(0, 1, 0))):
        Circle(SKETCH3_R)
    extrude(amount=-CUT_EXTRUDE1_DEPTH, mode=Mode.SUBTRACT)

    # Fillet2
    fillet2_edges = [part.edges().sort_by_distance(p)[0] for p in [
        (0, 2, -14.5),
        (-7.5, 2, -3.5),
        (0, 2, 7.5),
        (7.5, 2, -3.5),
    ]]
    fillet(fillet2_edges, radius=FILLET2_R)


solid = part.part
